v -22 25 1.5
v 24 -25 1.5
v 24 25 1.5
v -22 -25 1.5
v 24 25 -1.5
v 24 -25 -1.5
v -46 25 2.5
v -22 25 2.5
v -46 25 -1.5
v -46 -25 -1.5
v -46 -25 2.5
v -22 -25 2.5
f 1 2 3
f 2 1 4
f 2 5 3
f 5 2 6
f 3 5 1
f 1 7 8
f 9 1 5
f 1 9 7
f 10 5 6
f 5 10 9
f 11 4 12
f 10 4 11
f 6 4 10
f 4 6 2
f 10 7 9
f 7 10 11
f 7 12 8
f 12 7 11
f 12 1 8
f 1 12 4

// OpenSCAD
/*
color("red") 
translate(v = [1, 0, 2]) {
cube(size = [46,40,1.5], center = true);
}
*/
cube(size = [48,50,3], center = true);

translate(v = [-34, 0, 0.5]) { 
cube(size = [24,50,4], center = true);
    }
